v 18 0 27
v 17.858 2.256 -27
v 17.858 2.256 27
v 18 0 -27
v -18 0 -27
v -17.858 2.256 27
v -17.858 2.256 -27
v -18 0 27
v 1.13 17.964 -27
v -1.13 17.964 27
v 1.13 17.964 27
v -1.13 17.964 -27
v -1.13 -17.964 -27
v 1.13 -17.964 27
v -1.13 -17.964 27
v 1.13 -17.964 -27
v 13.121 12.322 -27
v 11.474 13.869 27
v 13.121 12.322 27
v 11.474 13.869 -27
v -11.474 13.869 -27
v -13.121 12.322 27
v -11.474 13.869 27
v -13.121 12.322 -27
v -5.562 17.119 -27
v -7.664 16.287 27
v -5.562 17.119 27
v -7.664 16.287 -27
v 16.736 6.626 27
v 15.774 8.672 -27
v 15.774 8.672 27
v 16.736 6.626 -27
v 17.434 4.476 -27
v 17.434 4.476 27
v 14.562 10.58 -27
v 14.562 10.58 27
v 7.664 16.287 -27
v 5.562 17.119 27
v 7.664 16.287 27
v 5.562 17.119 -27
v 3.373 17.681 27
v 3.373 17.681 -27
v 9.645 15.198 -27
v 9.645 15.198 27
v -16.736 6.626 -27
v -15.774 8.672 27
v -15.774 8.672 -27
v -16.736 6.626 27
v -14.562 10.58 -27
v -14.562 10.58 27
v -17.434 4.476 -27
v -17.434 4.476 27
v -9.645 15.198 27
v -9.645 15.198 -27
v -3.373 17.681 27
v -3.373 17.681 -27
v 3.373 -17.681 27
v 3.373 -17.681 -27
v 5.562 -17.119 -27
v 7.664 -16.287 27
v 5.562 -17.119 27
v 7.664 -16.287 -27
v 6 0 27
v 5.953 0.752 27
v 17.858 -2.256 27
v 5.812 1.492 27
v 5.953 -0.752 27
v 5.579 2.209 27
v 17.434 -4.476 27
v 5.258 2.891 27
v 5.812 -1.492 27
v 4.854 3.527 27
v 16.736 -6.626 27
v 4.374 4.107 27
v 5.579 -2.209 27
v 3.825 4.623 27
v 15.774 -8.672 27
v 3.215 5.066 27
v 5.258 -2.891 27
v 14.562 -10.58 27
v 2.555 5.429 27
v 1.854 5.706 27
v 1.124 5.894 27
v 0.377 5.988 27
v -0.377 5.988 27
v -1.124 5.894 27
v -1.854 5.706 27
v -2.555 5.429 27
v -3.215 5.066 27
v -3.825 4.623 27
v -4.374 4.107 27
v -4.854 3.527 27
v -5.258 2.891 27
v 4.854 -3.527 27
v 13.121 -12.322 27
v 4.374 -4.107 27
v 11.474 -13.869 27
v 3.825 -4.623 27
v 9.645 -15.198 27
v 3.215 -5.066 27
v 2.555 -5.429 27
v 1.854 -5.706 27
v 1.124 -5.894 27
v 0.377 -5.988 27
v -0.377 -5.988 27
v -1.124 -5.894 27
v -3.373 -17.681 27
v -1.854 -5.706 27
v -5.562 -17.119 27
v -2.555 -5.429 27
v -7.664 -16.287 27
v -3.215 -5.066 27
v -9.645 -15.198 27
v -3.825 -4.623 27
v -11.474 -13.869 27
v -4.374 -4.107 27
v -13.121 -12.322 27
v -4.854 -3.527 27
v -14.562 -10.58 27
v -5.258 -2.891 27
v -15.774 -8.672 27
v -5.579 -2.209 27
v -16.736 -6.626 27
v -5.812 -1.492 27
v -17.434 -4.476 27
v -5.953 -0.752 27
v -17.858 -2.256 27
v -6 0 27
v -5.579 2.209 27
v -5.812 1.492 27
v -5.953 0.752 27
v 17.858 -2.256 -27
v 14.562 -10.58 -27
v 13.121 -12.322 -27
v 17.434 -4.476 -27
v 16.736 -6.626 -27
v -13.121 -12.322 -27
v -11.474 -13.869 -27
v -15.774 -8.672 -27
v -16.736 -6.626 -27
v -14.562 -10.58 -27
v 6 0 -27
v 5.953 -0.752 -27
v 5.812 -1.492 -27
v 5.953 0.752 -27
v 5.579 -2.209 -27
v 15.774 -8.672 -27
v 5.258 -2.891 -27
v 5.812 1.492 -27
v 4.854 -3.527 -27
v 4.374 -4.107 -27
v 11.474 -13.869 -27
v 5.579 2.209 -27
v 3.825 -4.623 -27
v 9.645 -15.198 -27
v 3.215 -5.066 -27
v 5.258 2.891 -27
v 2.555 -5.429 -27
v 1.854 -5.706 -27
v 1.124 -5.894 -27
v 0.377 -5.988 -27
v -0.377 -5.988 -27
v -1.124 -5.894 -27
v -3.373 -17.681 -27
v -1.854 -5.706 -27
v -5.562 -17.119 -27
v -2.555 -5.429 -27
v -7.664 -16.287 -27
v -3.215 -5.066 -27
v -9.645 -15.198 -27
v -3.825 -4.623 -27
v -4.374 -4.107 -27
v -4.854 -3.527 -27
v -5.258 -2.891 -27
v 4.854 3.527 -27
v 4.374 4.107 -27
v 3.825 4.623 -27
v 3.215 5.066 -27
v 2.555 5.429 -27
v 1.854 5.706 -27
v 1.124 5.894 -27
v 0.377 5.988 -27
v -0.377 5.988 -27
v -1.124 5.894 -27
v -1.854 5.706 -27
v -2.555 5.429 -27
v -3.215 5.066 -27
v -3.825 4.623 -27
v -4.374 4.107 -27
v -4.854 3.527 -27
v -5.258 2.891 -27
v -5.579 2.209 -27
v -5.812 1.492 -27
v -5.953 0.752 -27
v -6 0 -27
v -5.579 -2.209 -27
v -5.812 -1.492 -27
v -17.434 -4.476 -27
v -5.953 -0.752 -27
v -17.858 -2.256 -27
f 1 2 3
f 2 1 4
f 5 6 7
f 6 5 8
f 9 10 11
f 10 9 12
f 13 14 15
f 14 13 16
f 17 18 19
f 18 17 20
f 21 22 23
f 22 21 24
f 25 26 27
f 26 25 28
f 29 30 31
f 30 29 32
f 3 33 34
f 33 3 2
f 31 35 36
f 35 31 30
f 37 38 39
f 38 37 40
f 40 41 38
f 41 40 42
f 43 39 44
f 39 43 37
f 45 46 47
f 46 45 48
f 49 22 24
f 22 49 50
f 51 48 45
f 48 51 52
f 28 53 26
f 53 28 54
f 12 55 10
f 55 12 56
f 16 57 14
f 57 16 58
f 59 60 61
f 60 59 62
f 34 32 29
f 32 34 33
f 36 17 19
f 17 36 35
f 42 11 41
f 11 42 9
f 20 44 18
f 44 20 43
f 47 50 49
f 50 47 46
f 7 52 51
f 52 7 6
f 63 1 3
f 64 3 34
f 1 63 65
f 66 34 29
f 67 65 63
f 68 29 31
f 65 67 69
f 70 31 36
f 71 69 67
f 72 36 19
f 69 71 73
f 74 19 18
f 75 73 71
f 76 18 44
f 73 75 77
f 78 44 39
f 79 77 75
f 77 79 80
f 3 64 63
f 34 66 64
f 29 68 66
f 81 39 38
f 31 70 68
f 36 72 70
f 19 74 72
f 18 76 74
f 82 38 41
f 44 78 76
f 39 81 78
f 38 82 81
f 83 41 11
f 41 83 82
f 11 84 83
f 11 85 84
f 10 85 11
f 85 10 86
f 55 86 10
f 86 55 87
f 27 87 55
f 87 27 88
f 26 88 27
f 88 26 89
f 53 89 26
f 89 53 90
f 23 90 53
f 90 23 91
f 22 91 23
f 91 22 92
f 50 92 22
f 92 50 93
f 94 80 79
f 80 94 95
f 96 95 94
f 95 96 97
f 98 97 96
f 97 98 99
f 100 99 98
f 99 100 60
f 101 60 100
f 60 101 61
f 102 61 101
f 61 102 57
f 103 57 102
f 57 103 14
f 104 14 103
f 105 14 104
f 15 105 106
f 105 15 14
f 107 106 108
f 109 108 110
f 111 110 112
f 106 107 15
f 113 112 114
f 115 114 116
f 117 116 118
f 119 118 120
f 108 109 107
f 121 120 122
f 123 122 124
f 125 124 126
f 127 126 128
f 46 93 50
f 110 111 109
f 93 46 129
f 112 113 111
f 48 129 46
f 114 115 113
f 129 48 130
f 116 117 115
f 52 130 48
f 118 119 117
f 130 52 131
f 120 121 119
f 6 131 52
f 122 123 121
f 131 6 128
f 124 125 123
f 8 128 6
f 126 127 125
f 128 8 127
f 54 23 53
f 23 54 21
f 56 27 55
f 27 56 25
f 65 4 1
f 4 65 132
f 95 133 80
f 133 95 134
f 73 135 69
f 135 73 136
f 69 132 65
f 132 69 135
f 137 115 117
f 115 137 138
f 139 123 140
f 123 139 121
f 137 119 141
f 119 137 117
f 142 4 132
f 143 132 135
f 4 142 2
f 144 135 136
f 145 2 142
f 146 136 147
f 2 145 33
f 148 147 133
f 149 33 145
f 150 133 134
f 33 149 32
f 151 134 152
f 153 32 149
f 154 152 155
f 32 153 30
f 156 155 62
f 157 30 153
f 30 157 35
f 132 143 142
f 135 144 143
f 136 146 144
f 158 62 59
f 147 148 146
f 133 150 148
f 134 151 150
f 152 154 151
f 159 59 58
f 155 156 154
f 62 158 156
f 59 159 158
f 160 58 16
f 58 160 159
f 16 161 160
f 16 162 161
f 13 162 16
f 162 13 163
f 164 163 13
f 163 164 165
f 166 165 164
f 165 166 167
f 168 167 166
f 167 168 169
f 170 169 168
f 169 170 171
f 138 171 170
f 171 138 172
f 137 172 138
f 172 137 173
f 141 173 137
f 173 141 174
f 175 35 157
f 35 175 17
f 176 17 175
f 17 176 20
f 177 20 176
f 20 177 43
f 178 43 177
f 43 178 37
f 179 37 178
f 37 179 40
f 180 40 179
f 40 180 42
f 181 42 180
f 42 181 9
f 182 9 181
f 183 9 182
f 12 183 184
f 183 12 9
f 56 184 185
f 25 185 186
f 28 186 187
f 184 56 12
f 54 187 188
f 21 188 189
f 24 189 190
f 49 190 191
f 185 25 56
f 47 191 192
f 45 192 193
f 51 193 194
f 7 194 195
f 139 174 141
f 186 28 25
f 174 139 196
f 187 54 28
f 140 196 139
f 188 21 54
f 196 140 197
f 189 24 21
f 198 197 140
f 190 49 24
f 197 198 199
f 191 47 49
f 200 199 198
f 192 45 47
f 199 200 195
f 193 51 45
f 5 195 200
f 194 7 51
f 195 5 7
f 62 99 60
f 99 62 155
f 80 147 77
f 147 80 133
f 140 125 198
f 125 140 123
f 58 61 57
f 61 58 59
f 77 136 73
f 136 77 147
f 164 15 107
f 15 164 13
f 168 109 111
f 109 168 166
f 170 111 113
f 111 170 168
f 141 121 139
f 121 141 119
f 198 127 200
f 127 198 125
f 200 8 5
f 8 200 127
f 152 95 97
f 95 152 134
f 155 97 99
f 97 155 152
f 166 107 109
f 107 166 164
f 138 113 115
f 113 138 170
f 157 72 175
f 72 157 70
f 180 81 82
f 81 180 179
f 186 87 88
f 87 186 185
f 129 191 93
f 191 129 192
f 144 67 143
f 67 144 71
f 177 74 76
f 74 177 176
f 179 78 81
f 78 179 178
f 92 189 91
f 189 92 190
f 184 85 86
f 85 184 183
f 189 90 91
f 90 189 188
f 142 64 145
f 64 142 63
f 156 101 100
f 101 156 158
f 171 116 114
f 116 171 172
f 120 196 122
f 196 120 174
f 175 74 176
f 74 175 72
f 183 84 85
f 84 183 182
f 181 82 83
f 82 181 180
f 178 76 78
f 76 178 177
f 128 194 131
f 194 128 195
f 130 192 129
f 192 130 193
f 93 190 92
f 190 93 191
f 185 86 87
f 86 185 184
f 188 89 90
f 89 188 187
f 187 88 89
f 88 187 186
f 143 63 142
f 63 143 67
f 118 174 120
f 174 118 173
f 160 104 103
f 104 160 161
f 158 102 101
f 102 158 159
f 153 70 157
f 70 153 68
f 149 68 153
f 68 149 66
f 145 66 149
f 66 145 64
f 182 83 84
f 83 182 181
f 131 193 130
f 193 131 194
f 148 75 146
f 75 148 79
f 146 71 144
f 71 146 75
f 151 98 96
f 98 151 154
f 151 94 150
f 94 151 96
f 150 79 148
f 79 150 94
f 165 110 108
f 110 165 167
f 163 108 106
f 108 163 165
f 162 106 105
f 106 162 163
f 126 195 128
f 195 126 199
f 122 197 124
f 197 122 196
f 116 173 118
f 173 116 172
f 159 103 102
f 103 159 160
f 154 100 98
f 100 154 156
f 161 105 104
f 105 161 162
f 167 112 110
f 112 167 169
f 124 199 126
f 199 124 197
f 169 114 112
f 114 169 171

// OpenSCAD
$fn = 50;


difference() {
	union() {
		translate(v = [0, 0, -27.0000000000]) {
			cylinder(h = 54, r = 18.0000000000);
		}
	}
	union() {
		translate(v = [0, 0, -100.0000000000]) {
			cylinder(h = 200, r = 6);
		}
	}
}
